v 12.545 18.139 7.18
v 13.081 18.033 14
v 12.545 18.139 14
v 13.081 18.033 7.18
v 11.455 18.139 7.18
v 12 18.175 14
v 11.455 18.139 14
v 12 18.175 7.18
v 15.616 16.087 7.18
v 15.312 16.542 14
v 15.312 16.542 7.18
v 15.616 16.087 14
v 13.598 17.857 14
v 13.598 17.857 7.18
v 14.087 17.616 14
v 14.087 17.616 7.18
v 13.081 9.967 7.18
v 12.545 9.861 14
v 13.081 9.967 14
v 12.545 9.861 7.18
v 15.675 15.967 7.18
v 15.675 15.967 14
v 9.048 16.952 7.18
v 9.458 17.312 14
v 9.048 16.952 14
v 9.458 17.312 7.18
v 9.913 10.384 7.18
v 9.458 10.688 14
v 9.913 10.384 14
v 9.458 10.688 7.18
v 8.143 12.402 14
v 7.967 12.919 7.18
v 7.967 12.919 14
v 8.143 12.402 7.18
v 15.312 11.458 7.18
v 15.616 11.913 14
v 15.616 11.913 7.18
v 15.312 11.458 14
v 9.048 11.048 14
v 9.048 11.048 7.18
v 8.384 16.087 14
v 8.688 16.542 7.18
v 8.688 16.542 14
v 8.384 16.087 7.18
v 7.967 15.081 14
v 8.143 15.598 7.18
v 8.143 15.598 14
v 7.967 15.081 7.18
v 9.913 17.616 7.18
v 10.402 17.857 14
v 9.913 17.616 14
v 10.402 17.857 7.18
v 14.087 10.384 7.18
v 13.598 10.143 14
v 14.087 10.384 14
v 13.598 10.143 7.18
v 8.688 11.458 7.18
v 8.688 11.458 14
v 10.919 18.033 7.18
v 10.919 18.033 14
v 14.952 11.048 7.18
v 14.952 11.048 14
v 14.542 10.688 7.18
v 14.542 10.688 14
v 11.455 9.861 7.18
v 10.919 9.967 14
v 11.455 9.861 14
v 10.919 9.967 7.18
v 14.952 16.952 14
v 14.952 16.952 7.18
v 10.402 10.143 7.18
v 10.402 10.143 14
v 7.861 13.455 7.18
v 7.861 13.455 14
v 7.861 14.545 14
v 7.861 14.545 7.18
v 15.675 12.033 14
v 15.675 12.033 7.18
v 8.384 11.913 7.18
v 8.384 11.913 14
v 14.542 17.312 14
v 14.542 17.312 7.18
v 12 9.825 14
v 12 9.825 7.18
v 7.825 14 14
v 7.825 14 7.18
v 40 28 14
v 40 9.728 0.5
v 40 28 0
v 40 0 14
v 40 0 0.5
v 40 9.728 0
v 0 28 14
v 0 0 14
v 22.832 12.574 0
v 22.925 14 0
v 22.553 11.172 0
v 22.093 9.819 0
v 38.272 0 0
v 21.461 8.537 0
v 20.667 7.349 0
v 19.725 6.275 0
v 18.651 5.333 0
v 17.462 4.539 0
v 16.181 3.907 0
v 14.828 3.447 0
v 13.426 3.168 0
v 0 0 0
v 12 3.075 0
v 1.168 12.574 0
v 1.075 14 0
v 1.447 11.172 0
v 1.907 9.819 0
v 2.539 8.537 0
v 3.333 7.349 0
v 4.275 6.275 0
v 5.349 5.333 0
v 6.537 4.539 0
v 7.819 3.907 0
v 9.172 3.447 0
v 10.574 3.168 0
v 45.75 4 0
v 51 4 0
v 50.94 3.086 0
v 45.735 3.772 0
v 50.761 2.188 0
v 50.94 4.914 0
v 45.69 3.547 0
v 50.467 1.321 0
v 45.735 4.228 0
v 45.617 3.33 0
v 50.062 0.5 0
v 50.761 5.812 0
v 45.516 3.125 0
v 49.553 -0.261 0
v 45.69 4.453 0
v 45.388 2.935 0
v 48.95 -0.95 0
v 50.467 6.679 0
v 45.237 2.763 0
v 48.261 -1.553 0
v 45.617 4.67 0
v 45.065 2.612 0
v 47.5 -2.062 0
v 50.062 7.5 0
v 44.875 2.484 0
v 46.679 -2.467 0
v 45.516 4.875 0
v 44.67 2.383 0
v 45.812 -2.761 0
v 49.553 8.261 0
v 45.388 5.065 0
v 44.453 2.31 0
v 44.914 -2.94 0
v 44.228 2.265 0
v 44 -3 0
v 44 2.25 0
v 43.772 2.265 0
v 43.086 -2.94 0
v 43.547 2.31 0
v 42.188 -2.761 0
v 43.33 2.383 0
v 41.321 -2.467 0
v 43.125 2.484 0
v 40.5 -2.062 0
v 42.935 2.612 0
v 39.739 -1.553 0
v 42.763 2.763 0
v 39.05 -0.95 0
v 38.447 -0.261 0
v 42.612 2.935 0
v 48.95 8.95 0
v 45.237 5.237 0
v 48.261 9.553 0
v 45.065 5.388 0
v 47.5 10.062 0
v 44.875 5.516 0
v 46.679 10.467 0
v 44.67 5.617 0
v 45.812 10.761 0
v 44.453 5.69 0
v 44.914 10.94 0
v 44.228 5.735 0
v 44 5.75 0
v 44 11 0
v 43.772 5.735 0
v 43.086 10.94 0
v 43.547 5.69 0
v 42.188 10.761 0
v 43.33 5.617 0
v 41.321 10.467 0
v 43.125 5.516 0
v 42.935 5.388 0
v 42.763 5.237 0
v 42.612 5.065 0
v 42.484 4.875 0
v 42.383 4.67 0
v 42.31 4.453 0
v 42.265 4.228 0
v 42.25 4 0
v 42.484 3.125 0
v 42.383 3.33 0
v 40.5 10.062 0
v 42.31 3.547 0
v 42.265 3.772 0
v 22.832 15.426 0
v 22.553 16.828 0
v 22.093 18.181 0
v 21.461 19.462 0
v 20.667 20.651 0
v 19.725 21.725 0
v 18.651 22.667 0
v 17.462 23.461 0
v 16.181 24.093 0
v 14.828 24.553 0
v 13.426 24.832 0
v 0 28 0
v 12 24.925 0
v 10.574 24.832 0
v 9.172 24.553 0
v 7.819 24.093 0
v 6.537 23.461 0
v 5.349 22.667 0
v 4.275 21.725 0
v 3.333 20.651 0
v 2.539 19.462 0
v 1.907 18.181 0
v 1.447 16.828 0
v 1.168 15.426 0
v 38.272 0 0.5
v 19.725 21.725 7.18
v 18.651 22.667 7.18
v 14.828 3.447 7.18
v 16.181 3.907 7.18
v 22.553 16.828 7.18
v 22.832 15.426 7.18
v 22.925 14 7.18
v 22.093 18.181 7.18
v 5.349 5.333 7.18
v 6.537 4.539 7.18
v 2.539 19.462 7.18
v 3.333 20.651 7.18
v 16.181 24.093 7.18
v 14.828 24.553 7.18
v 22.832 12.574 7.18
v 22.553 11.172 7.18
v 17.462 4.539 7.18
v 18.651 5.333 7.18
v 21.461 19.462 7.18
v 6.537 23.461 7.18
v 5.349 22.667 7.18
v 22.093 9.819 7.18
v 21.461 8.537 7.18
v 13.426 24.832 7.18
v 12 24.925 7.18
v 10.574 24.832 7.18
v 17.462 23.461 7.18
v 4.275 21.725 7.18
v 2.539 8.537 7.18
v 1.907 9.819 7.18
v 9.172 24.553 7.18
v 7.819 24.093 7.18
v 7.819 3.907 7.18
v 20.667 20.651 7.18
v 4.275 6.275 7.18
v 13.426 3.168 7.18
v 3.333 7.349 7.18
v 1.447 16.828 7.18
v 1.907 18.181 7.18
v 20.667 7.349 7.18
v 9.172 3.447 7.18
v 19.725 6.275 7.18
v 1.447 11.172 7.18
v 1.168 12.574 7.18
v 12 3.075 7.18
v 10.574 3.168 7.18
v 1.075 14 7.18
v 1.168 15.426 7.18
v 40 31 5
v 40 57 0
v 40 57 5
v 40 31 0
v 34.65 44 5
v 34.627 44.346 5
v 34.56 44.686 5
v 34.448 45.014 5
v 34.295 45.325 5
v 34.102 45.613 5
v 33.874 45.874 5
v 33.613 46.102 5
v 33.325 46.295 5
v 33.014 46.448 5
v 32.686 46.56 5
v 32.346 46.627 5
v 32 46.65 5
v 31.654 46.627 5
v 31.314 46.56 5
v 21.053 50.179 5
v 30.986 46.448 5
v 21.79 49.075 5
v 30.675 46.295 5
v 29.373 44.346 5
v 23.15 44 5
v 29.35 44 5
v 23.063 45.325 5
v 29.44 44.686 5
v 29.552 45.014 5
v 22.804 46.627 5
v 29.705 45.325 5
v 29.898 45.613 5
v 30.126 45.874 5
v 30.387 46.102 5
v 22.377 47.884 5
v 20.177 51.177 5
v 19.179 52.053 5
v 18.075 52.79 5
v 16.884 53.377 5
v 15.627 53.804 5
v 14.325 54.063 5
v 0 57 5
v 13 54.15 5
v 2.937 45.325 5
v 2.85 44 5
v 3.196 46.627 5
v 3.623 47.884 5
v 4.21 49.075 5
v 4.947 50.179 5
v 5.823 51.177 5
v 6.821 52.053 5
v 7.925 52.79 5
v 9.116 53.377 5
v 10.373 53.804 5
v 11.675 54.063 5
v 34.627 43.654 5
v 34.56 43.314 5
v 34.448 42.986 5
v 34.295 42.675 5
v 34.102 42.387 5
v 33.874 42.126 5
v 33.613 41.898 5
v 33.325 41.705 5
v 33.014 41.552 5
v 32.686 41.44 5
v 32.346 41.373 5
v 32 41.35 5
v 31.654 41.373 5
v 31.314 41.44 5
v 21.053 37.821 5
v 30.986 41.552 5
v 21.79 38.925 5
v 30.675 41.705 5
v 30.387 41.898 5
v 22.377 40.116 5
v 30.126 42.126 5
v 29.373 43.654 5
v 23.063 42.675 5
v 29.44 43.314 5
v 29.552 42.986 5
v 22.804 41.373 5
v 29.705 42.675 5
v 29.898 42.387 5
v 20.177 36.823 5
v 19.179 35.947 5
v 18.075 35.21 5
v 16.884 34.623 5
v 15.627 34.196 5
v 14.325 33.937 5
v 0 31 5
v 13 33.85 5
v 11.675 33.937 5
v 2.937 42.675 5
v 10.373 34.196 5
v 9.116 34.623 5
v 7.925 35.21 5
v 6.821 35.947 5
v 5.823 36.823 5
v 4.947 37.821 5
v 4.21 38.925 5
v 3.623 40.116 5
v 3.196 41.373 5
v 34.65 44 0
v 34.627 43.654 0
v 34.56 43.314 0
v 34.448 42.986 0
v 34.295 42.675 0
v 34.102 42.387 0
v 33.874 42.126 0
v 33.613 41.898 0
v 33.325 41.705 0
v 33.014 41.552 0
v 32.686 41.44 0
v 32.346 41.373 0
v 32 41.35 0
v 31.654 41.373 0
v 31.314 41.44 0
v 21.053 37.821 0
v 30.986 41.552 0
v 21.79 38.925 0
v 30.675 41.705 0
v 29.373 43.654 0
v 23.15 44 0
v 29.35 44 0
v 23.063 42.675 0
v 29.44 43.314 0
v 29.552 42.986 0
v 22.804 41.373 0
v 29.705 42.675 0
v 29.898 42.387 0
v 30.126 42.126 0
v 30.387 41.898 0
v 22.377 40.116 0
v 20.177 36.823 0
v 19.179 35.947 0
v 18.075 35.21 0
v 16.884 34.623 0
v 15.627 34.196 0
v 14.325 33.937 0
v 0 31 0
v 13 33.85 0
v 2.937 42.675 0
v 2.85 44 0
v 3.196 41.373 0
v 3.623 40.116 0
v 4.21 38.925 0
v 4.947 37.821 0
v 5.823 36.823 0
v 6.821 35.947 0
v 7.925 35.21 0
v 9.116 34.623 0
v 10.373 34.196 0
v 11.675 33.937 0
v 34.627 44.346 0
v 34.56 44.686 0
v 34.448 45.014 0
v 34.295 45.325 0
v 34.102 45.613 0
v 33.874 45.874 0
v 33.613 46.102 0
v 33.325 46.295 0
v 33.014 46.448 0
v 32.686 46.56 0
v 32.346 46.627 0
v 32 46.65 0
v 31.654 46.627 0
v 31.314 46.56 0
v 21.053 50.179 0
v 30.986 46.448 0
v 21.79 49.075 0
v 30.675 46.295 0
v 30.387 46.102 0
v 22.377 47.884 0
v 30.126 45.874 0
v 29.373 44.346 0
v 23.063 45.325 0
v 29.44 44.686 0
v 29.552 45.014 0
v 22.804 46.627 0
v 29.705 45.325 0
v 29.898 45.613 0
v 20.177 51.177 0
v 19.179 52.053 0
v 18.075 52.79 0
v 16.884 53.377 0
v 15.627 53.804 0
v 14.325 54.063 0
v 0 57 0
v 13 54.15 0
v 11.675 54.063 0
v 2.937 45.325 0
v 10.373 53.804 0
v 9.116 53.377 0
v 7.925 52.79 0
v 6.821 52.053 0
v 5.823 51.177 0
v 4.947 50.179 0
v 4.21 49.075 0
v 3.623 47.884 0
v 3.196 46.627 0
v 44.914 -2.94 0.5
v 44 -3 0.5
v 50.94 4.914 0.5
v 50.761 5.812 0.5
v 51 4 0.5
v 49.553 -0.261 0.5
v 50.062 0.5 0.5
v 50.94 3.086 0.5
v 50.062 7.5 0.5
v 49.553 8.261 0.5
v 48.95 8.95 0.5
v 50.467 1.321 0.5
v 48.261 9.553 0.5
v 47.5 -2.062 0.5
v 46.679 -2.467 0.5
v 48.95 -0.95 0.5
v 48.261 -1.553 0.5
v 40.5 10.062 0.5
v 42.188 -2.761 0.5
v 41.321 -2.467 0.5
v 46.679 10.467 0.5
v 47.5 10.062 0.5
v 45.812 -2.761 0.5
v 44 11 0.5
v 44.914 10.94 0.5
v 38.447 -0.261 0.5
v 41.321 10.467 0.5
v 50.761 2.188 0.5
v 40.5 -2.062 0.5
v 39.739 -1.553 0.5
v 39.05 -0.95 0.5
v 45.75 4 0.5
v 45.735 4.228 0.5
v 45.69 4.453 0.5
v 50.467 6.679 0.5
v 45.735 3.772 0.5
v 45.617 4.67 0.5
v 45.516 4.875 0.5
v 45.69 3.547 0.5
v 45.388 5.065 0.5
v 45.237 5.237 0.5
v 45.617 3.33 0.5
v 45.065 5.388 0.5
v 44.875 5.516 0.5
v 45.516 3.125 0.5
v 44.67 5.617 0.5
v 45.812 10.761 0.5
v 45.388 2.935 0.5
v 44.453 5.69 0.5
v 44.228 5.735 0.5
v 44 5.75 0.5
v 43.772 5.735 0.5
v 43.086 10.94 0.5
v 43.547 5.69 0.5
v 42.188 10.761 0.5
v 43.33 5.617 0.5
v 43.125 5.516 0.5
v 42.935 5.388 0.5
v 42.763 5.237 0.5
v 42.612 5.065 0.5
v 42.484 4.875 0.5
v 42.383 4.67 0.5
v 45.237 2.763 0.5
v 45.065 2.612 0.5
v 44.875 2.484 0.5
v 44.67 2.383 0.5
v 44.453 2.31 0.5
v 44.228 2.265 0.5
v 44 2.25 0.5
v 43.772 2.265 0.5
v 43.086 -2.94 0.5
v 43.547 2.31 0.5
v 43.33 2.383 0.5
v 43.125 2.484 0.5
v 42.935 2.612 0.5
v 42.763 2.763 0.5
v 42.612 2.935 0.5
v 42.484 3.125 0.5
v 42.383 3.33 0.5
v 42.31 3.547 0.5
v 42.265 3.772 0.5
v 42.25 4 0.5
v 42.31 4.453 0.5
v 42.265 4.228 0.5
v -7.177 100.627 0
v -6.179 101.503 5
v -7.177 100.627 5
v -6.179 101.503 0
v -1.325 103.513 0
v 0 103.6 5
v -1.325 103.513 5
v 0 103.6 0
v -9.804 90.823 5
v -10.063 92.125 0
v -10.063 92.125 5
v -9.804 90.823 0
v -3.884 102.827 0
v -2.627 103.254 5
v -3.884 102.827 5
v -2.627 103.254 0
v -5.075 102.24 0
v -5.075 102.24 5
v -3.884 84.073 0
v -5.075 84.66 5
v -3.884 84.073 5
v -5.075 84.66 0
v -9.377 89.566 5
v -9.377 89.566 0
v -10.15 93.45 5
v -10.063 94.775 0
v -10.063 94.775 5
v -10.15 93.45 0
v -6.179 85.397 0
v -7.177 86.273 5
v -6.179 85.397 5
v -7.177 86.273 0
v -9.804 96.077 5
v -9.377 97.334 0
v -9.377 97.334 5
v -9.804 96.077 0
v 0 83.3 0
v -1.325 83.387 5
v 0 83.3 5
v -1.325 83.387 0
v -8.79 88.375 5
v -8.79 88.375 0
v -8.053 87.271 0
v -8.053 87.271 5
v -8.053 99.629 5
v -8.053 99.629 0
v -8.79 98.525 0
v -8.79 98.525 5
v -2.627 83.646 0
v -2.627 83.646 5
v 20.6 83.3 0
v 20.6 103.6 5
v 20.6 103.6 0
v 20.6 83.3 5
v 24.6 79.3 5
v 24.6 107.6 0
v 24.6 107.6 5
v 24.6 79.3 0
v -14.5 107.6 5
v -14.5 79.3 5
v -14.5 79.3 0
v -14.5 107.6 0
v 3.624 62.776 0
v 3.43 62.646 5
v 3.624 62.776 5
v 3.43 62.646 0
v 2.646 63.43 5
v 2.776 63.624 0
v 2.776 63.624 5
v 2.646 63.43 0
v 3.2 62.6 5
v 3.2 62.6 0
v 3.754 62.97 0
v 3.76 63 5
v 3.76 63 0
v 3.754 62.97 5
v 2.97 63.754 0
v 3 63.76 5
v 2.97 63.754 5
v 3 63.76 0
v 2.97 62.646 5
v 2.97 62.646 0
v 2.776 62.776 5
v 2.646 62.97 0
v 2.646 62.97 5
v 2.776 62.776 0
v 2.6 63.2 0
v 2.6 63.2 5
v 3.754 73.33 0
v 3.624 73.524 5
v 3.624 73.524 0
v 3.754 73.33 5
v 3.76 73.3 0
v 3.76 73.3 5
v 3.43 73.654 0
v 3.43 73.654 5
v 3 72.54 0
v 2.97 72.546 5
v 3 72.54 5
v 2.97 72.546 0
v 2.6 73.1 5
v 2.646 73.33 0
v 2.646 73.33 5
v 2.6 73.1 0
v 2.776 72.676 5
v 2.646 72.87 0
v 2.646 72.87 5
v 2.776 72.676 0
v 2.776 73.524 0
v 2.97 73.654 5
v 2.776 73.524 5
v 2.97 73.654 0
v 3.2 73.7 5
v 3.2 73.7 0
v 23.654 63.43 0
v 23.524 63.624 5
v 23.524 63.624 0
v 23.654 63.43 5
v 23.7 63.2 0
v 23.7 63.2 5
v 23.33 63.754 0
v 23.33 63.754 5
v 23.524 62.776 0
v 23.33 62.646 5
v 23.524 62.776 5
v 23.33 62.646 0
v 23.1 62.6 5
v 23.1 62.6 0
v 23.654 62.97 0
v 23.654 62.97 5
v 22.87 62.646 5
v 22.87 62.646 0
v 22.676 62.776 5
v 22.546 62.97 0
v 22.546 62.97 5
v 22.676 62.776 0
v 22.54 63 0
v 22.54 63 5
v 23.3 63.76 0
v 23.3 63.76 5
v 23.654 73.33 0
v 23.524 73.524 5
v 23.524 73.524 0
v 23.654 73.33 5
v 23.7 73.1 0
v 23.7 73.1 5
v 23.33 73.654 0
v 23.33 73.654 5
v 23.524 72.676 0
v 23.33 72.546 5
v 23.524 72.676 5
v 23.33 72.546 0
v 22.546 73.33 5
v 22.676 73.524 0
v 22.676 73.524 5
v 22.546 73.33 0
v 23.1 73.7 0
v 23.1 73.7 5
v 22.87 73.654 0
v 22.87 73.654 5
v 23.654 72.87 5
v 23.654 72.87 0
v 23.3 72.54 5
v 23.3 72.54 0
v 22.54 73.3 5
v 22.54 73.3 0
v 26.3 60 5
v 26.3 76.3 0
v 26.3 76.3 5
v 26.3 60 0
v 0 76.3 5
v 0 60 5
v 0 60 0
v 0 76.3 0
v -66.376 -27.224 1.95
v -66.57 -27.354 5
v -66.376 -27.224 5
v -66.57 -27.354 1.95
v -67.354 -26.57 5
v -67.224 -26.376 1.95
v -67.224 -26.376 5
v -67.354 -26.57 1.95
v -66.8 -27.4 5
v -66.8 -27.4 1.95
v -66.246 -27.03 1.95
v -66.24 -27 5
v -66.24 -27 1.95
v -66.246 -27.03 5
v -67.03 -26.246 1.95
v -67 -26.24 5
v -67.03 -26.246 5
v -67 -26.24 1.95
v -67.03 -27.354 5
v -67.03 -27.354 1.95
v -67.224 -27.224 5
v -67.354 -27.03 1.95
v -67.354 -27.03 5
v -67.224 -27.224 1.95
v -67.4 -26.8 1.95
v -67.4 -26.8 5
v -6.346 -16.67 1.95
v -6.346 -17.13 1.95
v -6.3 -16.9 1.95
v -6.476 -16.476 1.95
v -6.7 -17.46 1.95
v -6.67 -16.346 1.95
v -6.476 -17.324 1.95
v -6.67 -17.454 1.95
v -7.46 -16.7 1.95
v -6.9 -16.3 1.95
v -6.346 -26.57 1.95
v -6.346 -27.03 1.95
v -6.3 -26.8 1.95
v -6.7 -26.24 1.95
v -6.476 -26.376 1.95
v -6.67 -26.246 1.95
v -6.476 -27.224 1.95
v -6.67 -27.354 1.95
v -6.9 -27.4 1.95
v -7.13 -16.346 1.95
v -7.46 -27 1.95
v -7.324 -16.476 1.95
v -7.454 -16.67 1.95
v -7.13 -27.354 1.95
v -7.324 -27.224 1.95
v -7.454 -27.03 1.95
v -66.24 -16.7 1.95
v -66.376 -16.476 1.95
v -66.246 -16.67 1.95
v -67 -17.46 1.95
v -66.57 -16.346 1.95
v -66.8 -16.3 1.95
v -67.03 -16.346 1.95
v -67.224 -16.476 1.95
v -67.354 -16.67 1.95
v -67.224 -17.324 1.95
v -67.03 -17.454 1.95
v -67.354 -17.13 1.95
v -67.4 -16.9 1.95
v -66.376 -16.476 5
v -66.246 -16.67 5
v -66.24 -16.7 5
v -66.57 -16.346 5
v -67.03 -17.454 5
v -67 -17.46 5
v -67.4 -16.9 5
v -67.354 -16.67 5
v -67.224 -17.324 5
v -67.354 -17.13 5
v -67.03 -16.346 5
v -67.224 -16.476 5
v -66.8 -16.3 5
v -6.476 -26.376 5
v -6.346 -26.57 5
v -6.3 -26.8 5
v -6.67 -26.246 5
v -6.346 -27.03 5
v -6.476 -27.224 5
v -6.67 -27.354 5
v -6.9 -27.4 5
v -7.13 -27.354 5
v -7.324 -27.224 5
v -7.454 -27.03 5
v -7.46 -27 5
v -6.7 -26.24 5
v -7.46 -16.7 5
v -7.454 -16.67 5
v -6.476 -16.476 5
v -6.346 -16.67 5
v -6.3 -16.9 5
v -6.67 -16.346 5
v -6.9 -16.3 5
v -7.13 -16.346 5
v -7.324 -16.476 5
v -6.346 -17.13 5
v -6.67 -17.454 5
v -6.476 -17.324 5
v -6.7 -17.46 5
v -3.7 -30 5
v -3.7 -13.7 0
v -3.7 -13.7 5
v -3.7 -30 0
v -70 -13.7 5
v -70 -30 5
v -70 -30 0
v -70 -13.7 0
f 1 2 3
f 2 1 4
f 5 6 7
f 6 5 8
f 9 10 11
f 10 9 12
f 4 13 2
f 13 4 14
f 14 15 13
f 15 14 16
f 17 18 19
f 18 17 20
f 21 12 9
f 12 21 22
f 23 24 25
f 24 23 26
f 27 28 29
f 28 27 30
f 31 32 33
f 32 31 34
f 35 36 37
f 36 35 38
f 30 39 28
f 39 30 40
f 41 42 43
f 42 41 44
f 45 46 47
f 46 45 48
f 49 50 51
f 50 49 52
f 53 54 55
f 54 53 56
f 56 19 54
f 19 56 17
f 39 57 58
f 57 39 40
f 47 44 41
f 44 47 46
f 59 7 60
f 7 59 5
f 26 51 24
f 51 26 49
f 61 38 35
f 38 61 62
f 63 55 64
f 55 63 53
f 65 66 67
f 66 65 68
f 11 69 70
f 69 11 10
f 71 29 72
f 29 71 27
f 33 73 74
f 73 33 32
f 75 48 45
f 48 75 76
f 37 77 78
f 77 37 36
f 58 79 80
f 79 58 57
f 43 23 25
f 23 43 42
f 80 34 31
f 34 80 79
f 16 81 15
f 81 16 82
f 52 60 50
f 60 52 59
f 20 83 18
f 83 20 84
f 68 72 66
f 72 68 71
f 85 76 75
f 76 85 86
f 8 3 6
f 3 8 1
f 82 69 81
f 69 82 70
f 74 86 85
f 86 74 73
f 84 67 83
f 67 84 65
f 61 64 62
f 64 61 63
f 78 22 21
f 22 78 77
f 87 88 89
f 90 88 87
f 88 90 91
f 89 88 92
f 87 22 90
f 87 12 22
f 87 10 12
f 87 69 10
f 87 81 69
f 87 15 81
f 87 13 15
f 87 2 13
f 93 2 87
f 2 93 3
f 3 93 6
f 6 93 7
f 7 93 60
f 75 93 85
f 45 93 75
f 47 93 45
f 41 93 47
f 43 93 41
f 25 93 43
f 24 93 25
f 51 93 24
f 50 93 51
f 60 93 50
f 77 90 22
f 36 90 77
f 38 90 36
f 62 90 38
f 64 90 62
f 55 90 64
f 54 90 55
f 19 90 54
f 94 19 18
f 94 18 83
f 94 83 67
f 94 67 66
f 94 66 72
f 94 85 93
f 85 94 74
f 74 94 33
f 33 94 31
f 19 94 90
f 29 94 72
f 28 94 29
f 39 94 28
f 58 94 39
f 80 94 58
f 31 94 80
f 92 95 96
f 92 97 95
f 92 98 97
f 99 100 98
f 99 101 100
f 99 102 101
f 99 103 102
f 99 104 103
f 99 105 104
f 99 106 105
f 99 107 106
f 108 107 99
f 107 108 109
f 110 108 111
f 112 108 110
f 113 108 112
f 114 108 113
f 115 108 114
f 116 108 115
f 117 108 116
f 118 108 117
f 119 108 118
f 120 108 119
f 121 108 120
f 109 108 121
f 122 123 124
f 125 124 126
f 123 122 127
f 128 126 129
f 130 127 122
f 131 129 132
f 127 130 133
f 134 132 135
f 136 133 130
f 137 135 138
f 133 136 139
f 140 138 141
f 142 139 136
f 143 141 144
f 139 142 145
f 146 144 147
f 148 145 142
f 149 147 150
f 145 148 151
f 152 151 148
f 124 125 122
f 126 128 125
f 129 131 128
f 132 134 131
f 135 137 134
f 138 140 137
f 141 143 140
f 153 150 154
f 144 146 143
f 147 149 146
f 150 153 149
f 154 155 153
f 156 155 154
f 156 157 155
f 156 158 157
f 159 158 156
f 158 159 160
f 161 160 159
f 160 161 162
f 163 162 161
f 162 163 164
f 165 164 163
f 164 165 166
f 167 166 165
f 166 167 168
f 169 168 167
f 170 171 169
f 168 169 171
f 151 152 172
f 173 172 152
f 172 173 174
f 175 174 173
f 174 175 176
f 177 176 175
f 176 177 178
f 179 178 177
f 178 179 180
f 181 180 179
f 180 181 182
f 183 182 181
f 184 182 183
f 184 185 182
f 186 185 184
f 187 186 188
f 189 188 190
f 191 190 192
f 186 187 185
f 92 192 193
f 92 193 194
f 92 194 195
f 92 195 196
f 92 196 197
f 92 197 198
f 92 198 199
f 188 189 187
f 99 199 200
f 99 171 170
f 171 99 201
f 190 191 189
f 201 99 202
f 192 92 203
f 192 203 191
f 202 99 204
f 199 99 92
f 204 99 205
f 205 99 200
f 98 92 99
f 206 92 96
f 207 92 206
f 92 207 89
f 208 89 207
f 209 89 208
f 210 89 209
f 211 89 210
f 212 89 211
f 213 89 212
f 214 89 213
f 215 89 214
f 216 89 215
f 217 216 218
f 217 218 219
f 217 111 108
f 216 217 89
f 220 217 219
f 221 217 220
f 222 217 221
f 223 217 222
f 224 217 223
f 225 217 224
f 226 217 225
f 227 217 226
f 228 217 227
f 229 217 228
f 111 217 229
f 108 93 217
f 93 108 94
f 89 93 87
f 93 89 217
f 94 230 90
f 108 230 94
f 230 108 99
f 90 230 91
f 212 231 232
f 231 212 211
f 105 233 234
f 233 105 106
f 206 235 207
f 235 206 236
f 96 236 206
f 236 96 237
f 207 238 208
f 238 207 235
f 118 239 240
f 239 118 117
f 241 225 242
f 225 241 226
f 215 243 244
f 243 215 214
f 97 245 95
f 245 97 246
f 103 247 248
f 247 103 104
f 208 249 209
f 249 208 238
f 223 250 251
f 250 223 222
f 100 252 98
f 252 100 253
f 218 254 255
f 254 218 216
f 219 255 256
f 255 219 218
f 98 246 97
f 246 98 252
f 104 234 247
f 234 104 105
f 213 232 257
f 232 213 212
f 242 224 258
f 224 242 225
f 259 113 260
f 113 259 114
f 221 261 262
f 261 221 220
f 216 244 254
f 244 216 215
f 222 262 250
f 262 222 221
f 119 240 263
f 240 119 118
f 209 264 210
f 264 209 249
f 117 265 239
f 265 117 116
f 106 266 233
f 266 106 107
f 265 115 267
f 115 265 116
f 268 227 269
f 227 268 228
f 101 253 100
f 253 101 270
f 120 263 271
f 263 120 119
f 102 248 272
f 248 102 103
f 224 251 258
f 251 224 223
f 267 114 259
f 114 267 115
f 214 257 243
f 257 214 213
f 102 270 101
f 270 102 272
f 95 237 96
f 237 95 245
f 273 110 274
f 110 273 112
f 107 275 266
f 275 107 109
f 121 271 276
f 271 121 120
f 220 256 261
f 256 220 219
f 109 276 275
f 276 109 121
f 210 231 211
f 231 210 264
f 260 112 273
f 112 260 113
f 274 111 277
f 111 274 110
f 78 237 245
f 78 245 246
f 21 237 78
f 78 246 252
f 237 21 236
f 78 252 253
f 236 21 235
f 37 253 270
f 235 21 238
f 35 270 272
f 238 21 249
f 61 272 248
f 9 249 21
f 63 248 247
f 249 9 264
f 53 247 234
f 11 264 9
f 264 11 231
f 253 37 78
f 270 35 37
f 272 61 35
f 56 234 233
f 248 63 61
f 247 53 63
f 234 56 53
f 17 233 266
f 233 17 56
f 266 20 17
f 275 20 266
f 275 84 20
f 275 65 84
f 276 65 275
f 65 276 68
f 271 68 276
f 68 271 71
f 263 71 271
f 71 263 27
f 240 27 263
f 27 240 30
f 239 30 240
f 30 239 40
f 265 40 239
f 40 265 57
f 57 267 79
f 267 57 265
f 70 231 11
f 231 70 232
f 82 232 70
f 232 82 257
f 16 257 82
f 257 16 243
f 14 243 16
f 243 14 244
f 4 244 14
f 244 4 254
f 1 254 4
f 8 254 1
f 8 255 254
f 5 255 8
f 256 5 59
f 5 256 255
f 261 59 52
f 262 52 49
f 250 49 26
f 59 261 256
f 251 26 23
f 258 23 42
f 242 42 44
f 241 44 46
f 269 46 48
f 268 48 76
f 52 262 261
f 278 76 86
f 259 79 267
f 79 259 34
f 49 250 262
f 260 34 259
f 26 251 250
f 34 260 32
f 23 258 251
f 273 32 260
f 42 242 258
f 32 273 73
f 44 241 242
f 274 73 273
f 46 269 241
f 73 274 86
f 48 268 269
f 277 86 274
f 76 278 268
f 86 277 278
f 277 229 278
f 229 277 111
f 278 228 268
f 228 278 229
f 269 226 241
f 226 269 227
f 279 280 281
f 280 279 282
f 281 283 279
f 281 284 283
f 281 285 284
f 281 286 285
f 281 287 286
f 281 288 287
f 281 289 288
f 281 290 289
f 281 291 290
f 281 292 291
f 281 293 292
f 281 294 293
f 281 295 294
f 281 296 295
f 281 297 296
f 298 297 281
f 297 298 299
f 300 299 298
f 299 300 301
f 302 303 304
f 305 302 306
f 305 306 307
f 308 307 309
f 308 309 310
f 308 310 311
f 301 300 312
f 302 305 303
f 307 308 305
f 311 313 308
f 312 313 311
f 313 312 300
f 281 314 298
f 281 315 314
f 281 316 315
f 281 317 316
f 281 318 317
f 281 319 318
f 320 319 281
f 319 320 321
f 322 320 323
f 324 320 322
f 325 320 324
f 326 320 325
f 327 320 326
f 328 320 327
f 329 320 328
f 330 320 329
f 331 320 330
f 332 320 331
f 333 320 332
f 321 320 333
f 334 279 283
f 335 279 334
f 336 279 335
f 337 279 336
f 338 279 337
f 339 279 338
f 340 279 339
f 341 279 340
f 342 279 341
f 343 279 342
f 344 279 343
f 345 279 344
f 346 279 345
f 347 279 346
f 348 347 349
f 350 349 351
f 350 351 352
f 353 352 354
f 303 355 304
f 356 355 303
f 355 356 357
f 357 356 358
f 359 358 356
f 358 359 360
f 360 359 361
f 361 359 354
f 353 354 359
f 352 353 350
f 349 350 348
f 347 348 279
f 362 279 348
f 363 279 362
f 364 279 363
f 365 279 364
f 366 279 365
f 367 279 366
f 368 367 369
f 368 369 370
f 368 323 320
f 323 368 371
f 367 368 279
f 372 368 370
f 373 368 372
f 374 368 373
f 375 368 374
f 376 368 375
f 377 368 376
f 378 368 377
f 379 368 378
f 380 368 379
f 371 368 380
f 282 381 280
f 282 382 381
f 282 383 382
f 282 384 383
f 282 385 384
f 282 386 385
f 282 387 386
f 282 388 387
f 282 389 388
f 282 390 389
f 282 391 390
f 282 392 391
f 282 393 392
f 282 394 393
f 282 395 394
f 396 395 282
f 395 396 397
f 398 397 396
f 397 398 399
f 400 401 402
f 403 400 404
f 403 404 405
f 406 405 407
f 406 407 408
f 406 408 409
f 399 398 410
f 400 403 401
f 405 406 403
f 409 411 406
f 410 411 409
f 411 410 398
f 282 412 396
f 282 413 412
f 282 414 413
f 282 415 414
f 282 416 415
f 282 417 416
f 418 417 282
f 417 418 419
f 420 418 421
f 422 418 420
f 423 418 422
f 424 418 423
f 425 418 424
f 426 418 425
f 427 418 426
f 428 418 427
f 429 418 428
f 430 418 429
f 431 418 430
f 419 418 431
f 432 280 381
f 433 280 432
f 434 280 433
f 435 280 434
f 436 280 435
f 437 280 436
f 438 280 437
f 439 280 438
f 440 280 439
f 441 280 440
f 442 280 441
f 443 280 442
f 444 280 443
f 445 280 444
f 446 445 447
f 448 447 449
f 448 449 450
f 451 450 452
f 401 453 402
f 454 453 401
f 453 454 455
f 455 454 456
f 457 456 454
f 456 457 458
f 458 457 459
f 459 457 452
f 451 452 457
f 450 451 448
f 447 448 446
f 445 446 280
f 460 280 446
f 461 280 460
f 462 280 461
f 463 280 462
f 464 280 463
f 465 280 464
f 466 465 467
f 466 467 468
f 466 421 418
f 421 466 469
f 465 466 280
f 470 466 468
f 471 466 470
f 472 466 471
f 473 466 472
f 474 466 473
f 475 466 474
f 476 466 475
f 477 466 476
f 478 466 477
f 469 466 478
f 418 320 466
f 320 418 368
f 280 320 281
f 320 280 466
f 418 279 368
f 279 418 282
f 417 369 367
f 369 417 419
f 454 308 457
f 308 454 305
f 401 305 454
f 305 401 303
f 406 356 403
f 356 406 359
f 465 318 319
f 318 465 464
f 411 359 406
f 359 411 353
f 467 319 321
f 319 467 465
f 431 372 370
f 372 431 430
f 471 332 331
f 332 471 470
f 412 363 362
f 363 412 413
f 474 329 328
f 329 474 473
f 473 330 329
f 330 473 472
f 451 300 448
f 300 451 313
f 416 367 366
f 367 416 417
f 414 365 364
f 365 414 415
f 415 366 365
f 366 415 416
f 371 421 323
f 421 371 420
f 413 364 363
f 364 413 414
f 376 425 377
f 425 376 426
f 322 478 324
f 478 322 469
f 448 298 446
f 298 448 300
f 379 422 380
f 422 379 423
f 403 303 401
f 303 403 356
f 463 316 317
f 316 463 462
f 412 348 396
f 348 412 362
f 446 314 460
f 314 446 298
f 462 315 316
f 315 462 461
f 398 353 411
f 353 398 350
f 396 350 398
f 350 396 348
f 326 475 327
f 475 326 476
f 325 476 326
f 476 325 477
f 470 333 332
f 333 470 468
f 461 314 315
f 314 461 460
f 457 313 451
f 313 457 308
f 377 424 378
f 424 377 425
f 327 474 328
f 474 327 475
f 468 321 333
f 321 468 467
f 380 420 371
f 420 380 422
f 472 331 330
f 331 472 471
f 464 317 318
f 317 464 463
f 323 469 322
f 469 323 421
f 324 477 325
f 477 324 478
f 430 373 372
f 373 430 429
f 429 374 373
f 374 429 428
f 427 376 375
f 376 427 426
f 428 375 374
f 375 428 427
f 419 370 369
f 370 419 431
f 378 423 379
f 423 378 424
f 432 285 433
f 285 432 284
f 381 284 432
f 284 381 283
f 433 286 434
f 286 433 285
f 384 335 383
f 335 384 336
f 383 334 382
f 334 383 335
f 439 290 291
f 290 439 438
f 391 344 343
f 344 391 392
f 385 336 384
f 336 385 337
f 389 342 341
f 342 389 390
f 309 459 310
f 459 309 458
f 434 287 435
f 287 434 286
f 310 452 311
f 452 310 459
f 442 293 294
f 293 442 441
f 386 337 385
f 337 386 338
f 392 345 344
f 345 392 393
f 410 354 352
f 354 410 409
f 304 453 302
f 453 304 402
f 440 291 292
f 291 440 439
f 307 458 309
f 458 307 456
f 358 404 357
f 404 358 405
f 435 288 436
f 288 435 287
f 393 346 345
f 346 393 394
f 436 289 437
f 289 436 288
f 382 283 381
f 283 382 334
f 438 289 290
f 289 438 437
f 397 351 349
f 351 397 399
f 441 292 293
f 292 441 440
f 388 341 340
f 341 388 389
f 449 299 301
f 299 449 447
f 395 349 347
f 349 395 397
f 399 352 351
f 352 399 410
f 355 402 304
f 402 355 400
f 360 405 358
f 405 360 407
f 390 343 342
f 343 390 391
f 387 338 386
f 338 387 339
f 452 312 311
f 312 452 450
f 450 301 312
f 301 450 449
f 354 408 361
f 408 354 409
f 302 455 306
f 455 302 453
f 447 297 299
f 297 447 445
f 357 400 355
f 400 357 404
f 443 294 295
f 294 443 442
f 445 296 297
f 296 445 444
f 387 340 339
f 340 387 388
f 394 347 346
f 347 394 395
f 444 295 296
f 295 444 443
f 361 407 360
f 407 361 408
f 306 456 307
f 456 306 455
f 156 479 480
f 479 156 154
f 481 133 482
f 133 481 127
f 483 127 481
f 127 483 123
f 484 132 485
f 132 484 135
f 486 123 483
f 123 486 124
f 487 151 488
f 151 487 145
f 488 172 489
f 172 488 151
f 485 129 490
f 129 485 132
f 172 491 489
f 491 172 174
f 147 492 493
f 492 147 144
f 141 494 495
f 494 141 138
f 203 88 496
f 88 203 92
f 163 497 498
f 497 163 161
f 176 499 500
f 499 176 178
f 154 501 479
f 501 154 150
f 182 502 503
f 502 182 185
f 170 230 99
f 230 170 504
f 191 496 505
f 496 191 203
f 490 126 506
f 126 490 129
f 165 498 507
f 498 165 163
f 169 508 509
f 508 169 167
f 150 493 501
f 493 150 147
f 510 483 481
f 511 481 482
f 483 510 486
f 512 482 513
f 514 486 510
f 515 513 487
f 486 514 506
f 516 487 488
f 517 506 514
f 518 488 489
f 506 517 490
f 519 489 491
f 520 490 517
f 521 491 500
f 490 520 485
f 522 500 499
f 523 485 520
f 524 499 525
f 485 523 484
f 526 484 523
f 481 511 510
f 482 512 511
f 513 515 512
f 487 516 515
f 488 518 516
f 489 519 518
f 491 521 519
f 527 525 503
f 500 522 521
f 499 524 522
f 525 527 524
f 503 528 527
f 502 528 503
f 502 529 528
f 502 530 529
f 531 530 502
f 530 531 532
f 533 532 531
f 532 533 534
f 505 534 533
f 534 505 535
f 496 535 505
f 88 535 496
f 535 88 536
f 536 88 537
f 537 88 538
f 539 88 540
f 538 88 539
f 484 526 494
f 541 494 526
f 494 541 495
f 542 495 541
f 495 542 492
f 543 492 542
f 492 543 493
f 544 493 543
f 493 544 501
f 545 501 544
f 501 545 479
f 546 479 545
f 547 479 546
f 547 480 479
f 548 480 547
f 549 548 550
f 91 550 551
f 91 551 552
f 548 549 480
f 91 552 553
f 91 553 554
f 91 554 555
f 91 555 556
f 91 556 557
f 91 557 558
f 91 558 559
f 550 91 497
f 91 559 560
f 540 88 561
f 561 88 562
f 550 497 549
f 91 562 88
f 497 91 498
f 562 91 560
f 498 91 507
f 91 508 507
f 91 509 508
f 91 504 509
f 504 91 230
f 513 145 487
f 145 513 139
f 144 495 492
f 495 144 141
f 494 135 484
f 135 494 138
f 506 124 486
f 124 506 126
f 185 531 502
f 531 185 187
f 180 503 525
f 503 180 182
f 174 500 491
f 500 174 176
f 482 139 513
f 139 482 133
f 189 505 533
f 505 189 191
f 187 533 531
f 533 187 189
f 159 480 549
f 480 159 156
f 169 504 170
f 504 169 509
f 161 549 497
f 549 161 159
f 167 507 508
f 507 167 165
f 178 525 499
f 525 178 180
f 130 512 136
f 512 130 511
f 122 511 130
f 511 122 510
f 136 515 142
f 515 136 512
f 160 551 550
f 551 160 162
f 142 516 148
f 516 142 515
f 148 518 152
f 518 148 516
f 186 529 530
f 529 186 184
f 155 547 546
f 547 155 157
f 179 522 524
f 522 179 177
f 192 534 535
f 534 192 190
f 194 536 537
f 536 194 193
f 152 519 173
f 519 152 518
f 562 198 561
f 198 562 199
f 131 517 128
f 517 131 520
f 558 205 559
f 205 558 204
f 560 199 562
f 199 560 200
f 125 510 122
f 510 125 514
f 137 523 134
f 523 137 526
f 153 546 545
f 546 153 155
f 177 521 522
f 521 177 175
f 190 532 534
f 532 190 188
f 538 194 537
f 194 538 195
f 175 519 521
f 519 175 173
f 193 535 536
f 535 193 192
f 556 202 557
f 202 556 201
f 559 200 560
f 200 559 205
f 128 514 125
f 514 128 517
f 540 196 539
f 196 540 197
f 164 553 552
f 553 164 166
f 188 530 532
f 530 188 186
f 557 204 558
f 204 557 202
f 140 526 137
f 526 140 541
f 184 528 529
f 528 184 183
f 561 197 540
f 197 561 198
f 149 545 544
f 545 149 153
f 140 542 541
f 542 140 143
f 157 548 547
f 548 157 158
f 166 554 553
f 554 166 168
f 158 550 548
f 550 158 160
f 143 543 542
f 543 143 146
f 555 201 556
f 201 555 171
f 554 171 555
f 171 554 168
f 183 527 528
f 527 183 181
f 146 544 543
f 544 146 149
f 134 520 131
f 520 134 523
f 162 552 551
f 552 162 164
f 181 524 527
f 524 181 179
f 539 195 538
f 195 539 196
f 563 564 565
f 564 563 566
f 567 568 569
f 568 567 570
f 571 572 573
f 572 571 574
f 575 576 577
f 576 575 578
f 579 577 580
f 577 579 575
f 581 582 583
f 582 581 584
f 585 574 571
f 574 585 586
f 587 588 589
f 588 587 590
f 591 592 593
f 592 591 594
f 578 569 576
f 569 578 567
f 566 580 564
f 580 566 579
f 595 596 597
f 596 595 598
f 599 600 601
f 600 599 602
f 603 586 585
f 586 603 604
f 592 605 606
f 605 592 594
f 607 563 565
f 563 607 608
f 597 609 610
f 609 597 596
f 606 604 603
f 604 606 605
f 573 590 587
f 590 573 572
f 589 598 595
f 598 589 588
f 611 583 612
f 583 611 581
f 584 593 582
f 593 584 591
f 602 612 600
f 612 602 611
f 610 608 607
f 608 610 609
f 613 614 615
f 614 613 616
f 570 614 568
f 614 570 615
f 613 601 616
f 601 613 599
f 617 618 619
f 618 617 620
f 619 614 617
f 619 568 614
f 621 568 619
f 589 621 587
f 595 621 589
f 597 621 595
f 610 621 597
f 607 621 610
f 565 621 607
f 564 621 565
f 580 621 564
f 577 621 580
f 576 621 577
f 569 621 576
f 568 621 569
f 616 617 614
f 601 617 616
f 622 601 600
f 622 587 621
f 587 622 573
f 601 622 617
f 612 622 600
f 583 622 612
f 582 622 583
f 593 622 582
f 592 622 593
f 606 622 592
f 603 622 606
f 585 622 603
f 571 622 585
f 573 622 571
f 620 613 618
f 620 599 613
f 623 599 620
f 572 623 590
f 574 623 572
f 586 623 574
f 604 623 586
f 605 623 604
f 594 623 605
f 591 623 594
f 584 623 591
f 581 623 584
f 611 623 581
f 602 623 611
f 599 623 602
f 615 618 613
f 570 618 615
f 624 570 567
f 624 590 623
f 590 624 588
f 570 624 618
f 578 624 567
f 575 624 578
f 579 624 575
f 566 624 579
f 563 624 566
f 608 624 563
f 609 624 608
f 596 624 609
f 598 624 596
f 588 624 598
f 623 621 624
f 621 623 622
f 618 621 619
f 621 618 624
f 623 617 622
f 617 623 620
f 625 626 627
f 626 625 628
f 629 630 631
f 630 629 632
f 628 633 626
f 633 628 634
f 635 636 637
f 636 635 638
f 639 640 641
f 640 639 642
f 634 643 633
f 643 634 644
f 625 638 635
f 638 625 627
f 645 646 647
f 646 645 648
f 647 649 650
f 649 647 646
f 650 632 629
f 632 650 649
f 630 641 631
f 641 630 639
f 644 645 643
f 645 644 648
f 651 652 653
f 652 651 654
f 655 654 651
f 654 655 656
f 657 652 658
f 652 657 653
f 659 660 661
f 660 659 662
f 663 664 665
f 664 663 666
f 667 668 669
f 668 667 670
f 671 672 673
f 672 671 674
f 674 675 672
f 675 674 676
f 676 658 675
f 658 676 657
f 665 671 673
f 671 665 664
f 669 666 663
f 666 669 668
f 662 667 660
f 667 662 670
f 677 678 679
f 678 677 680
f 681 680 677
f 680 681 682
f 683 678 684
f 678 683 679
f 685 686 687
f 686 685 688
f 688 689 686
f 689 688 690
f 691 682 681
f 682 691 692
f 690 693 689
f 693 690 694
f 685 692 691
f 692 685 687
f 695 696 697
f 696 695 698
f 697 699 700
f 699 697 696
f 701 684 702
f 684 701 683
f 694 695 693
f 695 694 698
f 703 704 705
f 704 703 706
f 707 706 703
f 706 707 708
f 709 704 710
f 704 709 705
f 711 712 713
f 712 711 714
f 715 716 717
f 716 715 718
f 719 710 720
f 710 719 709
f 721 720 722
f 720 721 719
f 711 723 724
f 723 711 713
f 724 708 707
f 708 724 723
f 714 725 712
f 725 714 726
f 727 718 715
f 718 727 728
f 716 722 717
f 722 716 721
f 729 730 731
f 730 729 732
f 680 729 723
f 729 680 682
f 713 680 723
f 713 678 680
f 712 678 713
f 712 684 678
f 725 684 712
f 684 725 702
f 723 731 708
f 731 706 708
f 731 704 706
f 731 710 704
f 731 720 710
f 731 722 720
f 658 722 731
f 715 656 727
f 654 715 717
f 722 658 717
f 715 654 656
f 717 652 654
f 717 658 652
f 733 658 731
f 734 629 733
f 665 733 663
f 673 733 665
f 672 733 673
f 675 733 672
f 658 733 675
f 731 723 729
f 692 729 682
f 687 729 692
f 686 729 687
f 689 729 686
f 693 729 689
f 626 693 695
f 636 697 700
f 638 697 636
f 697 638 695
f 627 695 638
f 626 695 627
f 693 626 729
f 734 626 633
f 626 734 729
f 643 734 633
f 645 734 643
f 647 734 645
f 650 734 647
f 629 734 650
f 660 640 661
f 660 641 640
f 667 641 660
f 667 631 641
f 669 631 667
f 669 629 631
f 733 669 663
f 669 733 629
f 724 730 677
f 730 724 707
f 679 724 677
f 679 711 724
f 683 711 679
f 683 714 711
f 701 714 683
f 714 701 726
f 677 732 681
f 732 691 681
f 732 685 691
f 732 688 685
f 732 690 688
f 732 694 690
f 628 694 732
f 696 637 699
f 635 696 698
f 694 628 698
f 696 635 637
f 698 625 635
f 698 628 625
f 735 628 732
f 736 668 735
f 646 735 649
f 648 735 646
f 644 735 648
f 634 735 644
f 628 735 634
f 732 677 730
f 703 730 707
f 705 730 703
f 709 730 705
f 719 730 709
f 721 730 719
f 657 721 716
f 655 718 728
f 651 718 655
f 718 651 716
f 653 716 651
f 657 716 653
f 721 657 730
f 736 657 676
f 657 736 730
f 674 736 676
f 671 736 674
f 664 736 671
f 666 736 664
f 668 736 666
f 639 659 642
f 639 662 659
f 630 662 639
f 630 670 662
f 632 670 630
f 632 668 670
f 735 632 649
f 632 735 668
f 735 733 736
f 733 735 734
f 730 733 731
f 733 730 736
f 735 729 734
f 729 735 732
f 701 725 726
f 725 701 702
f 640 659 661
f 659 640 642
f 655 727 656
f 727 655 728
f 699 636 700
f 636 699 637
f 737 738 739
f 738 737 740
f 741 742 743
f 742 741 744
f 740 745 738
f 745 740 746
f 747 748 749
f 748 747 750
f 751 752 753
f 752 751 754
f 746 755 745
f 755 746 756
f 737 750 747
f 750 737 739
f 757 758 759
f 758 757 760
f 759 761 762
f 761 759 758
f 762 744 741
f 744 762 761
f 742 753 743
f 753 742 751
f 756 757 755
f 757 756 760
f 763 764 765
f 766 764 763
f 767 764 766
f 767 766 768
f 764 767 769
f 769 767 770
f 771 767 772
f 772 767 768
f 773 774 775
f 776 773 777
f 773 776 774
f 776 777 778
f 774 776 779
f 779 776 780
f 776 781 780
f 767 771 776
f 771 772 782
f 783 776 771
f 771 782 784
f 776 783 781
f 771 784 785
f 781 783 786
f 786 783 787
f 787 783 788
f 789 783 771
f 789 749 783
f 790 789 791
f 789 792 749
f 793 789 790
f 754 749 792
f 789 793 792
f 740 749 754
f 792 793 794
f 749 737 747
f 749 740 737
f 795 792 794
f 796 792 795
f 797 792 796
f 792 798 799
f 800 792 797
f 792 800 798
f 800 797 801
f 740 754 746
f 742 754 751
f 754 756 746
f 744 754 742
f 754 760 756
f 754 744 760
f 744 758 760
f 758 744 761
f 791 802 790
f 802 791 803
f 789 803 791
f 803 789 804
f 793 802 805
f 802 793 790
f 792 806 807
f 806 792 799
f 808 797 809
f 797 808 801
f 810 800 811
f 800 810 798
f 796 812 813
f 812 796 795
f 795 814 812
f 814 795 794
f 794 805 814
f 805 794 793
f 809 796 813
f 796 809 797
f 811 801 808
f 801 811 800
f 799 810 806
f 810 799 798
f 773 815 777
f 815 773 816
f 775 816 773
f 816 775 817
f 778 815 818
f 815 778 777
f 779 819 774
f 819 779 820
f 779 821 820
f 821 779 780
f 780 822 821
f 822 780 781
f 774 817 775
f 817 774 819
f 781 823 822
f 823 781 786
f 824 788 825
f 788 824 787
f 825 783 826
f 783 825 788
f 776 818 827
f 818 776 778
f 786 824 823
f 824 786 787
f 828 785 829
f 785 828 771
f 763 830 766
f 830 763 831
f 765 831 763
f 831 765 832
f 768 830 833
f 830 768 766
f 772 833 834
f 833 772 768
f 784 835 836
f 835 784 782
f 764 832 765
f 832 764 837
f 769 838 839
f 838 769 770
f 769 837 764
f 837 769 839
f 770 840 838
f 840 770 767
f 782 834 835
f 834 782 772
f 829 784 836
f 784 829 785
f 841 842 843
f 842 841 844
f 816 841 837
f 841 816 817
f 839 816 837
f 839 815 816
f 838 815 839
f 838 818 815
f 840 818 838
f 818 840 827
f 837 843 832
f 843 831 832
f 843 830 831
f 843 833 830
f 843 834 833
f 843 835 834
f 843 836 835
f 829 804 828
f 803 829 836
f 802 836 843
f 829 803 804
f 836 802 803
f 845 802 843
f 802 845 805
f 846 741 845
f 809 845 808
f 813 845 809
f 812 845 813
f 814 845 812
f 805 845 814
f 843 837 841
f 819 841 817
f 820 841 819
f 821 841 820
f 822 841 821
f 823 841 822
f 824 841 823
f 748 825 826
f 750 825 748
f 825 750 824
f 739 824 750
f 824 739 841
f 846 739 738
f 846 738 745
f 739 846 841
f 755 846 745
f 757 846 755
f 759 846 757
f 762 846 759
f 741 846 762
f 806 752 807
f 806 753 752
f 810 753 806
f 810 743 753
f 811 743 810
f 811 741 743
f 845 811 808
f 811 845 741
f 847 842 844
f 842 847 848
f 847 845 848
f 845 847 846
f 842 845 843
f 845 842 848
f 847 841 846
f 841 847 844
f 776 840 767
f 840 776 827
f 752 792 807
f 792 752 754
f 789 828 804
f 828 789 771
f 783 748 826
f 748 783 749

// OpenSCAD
// Gen-DG — fit coupon: O20/O5 THROUGH pockets at carrier thickness (test on a steel offcut), 608 seat,
// D-flat bore, gap shim, and one bobbin-bay slice (bobbin footprint + bay_clear) to test former fit.
include <parameters.scad>;
$fn = 48;
// D-flat keyed bore: flat faces +X (angle 0 = magnet pocket 0 = index notch)
module dflat_bore(h) {
    intersection() {
        cylinder(d=shaft_bore, h=h);
        translate([-shaft_bore, -shaft_bore, 0]) cube([shaft_bore + dflat_x, 2*shaft_bore, h]);
    }
}
module sector_2d(r_in, r_out, ang) {
    polygon([
        for (a = [-ang/2 : ang/24 : ang/2]) [r_in*cos(a), r_in*sin(a)],
        for (a = [ang/2 : -ang/24 : -ang/2]) [r_out*cos(a), r_out*sin(a)]
    ]);
}
module footprint_2d() { offset(r=wall) sector_2d(coil_id_r, coil_od_r, span_deg); }
module hub_2d()       { offset(delta=-coil_core_inset) sector_2d(coil_id_r, coil_od_r, span_deg); }

block_w = 40; block_d = 28; block_h = 14;
difference() {
    cube([block_w, block_d, block_h]);
    translate([12, block_d/2, -0.02]) cylinder(d=bearing_d, h=bearing_h);
    translate([12, block_d/2, -0.1]) dflat_bore(block_h + 1);
}
translate([0, block_d + 3, 0]) difference() {
    cube([40, 26, carrier_thick]);
    translate([13, 13, -0.1]) cylinder(d=large_pocket_d, h=carrier_thick + 0.2);
    translate([32, 13, -0.1]) cylinder(d=small_pocket_d, h=carrier_thick + 0.2);
}
translate([block_w + 4, 4, 0])
    difference() {
        cylinder(d=spacer_pad_od, h=gap_spacer_h);
        translate([0, 0, -0.1]) cylinder(d=spacer_pad_id, h=gap_spacer_h + 0.2);
    }
// KEYHOLE pole pocket test (2026-10-18): O20 disc pocket + N42 20x10x5 block pocket merged (hull), as on the arcs.
// Drop a disc and a block in: they must push each other onto the two far walls and sit flat. Block pocket has corner reliefs.
translate([0, block_d + 3 + 26 + 3 + block_radial + block_pocket_clear + 6 + 3 + max(block_tangential, large_pocket_d) / 2 + 4, 0]) difference() {
    translate([-14.5, -(max(block_tangential, large_pocket_d) / 2 + 4), 0]) cube([14.5 + abs(block_R_list[0] - R_large) + block_radial / 2 + 4, max(block_tangential, large_pocket_d) + 8, carrier_thick]);
    translate([0, 0, -0.1]) {
        translate([disc_pocket_shift * sign(block_R_list[0] - R_large), 0, 0]) cylinder(d=large_pocket_d, h=carrier_thick + 0.2);
        translate([disc_pocket_shift * sign(block_R_list[0] - R_large), -(block_tangential + block_pocket_clear)/2, 0])
            cube([abs(block_R_list[0] - R_large) - abs(block_pocket_shift) + (block_radial + block_pocket_clear)/2 - disc_pocket_shift * sign(block_R_list[0] - R_large), block_tangential + block_pocket_clear, carrier_thick + 0.2]);
    }
}
// N42 20x10x5 BLOCK through-pocket test (block + block_pocket_clear, 1.2 mm corner reliefs), 2026-10-16
translate([0, block_d + 3 + 26 + 3, 0]) difference() {
    cube([block_tangential + block_pocket_clear + 6, block_radial + block_pocket_clear + 6, carrier_thick]);
    translate([3, 3, -0.1]) cube([block_tangential + block_pocket_clear, block_radial + block_pocket_clear, carrier_thick + 0.2]);
    for (x = [3.2, 3 + block_tangential + block_pocket_clear - 0.2], y = [3.2, 3 + block_radial + block_pocket_clear - 0.2])
        translate([x, y, -0.1]) cylinder(d=1.2, h=carrier_thick + 0.2, $fn=16);
}
// N52 60x10x3 BAR blind-pocket test (2026-10-21): bar + 0.3 mm, depth block2_pocket_depth: the bar face must sit flush with the top.
translate([-70, -30, 0]) difference() {
    cube([block2_tangential + block2_pocket_clear + 6, block2_radial + block2_pocket_clear + 6, carrier_thick]);
    translate([3, 3, carrier_thick - block2_pocket_depth]) cube([block2_tangential + block2_pocket_clear, block2_radial + block2_pocket_clear, carrier_thick]);
    for (x = [3.2, 3 + block2_tangential + block2_pocket_clear - 0.2], y = [3.2, 3 + block2_radial + block2_pocket_clear - 0.2])
        translate([x, y, carrier_thick - block2_pocket_depth]) cylinder(d=1.2, h=carrier_thick, $fn=16);
}
